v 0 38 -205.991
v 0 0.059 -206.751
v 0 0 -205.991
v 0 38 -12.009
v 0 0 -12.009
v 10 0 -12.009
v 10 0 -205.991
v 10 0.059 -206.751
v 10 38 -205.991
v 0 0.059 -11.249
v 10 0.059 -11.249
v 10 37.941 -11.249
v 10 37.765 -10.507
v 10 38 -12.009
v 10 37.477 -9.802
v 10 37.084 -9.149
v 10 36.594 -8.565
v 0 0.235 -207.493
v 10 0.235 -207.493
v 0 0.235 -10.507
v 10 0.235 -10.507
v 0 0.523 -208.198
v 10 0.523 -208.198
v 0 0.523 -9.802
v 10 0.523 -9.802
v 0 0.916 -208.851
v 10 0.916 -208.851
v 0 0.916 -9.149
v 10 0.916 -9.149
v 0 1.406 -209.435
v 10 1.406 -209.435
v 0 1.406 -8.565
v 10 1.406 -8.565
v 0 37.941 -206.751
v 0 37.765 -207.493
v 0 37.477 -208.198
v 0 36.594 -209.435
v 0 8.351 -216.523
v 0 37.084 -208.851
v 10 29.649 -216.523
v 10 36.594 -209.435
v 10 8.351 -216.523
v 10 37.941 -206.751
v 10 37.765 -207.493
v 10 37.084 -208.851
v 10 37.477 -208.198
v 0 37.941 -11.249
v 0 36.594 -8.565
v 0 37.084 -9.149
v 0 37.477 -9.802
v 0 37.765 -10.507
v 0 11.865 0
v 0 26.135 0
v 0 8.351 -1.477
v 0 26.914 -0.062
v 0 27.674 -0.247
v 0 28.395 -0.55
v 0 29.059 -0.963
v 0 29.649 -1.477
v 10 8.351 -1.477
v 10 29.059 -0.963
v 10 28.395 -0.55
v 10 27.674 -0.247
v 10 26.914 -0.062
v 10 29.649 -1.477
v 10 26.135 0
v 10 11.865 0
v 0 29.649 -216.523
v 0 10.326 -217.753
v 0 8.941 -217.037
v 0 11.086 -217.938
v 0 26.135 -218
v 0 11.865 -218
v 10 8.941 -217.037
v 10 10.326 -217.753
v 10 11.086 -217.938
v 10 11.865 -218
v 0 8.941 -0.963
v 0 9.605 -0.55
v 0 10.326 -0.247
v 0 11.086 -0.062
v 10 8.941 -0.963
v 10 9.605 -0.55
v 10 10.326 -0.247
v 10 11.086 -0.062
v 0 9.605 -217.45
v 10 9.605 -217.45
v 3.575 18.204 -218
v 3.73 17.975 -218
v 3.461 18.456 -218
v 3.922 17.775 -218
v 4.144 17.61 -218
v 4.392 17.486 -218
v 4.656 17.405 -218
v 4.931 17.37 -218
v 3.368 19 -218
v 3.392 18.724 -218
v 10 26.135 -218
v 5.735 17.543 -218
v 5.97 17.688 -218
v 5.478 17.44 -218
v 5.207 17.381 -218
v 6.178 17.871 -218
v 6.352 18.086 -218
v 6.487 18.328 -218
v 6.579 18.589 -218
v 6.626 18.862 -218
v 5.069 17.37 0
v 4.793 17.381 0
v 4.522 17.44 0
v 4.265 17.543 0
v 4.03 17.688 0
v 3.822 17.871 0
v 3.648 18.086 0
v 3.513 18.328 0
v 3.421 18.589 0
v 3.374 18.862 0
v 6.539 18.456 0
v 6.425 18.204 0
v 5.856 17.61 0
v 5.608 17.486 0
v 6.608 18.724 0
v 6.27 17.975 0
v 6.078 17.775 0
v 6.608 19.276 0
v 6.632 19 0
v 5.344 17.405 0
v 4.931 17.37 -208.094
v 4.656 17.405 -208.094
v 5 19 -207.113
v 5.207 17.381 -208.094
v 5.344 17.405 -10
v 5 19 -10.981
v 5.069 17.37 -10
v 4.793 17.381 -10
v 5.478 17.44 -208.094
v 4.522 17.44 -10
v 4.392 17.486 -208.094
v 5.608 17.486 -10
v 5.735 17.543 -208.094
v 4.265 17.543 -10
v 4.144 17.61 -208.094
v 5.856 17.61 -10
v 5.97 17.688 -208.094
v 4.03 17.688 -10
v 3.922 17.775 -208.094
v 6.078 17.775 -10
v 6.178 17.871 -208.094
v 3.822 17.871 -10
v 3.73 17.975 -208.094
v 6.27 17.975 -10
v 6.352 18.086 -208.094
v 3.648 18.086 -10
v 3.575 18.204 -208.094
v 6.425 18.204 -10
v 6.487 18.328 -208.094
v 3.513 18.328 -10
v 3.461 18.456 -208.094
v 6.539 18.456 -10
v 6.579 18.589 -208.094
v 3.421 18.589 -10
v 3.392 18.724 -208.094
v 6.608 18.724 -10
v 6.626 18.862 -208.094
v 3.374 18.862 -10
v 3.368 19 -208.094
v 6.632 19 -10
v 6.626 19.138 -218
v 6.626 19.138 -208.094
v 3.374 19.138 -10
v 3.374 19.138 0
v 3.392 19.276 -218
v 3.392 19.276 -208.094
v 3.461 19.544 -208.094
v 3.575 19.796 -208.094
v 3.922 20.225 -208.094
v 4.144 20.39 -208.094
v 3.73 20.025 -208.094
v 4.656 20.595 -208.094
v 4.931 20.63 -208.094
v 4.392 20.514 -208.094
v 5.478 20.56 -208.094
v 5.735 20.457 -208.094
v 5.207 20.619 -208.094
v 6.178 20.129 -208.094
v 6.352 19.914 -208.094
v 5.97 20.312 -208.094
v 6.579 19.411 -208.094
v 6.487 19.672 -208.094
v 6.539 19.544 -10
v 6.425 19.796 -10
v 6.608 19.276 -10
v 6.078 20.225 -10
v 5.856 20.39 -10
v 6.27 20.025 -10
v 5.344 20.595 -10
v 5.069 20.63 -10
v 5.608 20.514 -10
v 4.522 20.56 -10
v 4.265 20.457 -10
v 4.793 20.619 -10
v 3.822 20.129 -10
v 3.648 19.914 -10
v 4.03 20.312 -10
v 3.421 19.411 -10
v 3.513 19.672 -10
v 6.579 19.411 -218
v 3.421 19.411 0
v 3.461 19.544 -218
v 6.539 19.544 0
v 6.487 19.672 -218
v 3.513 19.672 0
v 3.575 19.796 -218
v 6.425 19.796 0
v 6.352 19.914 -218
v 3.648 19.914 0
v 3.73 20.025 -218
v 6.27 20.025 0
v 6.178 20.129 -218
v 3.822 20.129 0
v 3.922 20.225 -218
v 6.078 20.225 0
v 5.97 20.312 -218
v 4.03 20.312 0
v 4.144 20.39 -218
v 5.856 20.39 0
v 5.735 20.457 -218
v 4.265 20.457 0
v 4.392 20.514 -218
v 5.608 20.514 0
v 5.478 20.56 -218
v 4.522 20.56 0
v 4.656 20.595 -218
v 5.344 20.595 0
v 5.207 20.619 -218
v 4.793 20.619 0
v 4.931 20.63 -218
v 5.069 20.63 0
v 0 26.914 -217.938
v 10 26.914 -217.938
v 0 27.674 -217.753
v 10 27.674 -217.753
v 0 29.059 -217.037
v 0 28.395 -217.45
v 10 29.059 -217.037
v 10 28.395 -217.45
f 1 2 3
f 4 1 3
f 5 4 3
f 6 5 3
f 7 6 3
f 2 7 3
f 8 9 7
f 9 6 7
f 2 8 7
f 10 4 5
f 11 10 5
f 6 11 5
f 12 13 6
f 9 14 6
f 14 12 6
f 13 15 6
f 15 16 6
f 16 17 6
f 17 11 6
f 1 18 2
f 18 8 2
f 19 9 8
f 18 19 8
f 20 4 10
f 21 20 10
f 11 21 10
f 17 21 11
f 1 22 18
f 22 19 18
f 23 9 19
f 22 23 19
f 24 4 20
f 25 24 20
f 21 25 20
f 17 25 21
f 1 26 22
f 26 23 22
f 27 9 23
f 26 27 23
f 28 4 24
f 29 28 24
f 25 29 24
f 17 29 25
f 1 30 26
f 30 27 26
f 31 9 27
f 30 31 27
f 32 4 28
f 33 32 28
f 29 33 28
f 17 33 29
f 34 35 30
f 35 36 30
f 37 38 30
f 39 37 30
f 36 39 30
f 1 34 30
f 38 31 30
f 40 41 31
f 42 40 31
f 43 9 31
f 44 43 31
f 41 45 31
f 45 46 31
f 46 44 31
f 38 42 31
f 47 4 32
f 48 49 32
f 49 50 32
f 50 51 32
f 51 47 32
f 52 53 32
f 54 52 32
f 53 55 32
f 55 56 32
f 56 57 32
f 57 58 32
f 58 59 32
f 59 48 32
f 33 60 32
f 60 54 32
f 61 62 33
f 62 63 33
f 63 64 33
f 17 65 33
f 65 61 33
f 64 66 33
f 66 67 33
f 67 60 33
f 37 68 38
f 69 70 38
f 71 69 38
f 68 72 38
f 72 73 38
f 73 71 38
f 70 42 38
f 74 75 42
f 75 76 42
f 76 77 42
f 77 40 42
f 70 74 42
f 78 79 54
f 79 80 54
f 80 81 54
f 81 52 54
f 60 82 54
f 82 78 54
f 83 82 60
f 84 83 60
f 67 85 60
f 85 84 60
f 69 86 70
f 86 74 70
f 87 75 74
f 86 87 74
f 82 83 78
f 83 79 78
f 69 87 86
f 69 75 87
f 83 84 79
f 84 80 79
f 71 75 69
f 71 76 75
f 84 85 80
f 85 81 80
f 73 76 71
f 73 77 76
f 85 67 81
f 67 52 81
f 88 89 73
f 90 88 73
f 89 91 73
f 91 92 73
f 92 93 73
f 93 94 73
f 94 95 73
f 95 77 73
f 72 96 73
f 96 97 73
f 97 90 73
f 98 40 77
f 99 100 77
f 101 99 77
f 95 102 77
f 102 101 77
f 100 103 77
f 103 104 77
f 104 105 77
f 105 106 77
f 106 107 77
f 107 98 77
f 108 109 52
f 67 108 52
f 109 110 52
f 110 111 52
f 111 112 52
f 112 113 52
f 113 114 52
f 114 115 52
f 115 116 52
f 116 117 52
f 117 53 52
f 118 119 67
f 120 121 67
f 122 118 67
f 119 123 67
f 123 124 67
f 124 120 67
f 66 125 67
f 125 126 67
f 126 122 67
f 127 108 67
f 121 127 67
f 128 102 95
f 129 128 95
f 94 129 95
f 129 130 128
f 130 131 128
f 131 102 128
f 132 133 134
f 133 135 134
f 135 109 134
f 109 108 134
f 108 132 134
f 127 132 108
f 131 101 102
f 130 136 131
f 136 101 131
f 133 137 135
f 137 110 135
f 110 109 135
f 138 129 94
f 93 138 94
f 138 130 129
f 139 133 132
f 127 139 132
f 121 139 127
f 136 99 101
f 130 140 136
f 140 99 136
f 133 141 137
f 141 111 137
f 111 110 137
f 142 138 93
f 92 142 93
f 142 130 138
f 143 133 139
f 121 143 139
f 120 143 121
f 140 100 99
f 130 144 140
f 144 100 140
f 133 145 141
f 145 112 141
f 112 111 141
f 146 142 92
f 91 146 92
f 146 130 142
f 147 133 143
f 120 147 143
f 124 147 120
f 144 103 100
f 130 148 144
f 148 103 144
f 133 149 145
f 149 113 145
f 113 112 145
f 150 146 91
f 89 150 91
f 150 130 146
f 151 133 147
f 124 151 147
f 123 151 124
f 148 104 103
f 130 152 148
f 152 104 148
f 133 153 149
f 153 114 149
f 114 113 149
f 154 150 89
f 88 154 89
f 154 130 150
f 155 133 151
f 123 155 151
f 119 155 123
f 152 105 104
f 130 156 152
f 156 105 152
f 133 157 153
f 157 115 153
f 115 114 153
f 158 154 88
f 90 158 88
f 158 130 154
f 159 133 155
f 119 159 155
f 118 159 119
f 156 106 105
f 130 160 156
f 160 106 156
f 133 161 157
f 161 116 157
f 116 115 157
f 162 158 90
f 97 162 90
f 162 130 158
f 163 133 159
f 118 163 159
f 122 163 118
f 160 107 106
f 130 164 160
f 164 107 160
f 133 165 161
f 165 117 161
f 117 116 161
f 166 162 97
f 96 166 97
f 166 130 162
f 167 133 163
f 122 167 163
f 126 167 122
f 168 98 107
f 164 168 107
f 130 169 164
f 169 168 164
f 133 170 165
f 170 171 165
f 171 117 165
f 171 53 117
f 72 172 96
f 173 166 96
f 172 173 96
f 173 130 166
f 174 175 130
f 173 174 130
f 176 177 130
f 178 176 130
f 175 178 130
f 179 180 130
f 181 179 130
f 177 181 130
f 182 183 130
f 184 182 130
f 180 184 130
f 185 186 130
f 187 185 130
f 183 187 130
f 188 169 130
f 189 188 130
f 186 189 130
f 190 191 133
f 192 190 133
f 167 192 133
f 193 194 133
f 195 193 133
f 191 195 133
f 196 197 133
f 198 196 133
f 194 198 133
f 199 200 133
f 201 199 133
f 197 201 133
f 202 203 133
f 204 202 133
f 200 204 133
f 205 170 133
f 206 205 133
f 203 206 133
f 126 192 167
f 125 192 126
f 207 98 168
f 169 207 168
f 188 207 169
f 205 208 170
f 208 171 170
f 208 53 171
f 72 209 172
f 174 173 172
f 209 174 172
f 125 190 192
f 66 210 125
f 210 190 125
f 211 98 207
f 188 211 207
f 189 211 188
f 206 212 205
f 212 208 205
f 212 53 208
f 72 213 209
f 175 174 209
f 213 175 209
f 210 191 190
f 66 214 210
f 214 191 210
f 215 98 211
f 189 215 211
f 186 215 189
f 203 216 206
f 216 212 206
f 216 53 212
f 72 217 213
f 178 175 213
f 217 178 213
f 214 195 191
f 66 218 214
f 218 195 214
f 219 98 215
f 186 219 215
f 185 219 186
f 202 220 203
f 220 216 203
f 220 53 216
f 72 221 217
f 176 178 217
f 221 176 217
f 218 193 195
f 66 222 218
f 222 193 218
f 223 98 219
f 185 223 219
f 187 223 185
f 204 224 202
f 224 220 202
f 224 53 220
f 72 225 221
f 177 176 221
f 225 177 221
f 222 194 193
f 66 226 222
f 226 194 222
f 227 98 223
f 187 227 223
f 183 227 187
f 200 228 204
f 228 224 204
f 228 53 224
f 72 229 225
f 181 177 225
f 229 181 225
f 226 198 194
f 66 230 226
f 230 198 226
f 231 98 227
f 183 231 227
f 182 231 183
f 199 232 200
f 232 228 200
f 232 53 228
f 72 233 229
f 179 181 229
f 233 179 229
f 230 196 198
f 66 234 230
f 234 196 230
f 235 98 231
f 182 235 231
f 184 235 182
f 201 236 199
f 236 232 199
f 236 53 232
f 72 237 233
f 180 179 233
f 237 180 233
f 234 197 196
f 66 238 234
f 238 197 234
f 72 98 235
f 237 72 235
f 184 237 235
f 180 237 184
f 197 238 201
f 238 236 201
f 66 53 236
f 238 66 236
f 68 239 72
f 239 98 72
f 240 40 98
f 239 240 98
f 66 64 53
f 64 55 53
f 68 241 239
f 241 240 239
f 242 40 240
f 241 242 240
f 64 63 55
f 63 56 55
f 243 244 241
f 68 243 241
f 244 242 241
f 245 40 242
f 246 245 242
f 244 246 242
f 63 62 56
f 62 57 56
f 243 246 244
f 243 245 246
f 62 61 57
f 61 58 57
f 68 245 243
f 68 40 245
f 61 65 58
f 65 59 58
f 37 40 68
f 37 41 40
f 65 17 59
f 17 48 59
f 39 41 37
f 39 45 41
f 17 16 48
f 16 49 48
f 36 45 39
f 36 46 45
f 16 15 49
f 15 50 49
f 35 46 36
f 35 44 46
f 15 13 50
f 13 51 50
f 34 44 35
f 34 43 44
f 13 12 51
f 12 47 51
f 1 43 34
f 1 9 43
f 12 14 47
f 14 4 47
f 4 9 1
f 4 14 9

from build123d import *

# Parameters (mm, degrees)
SKETCH1_W                        = 10
SKETCH1_H                        = 218
BOSS_EXTRUDE1_DEPTH              = 38
CUT_EXTRUDE1_DEPTH               = 11
FILLET1_R                        = 4.92
F_30_0_1285_DIAMETER_HOLE1_D     = 3.2639
F_30_0_1285_DIAMETER_HOLE1_DEPTH = 9.99998
F_30_0_1285_DIAMETER_HOLE1_TIP   = 0.980574487
F_30_0_1285_DIAMETER_HOLE2_D     = 3.2639
F_30_0_1285_DIAMETER_HOLE2_DEPTH = 9.906
F_30_0_1285_DIAMETER_HOLE2_TIP   = 0.980574487


with BuildPart() as part:
    # Sketch1 → Boss-Extrude1 (new body)
    with BuildSketch(Plane(origin=(0, 0, 0), x_dir=(1, 0, 0), z_dir=(0, 1, 0))):
        with Locations((5, 109)):
            Rectangle(SKETCH1_W, SKETCH1_H)
    extrude(amount=BOSS_EXTRUDE1_DEPTH)

    # Sketch3 → Cut-Extrude1 (cut, through all)
    with BuildSketch(Plane(origin=(0, 0, 0), x_dir=(0, 0, -1), z_dir=(1, 0, 0))):
        Polygon((218, 38), (208, 38), (218, 28.202041029), align=None)
        Polygon((218, 9.797958971), (218, 0), (208, 0), align=None)
        Polygon((0, 0), (10, 0), (0, 9.797958971), align=None)
        Polygon((0, 28.202041029), (0, 38), (10, 38), align=None)
    extrude(amount=CUT_EXTRUDE1_DEPTH, mode=Mode.SUBTRACT)

    # Fillet1
    fillet1_edges = [part.edges().sort_by_distance(p)[0] for p in [
        (5, 28.202041029, 0),
        (5, 38, -10),
        (5, 9.797958971, 0),
        (5, 0, -10),
        (5, 9.797958971, -218),
        (5, 0, -208),
        (5, 28.202041029, -218),
        (5, 38, -208),
    ]]
    fillet(fillet1_edges, radius=FILLET1_R)

    # #30 (0.1285) Diameter Hole1
    with Locations(Plane.XY):
        with Locations((5, 19)):
            Hole(F_30_0_1285_DIAMETER_HOLE1_D / 2, depth=F_30_0_1285_DIAMETER_HOLE1_DEPTH)
            with Locations((0, 0, -(F_30_0_1285_DIAMETER_HOLE1_DEPTH + F_30_0_1285_DIAMETER_HOLE1_TIP / 2))):  # 118° drill point
                Cone(0, F_30_0_1285_DIAMETER_HOLE1_D / 2, F_30_0_1285_DIAMETER_HOLE1_TIP, mode=Mode.SUBTRACT)

    # #30 (0.1285) Diameter Hole2
    with Locations(Plane(origin=(0, 0, -218), x_dir=(-1, 0, 0), z_dir=(0, 0, -1))):
        with Locations((-5, 19)):
            Hole(F_30_0_1285_DIAMETER_HOLE2_D / 2, depth=F_30_0_1285_DIAMETER_HOLE2_DEPTH)
            with Locations((0, 0, -(F_30_0_1285_DIAMETER_HOLE2_DEPTH + F_30_0_1285_DIAMETER_HOLE2_TIP / 2))):  # 118° drill point
                Cone(0, F_30_0_1285_DIAMETER_HOLE2_D / 2, F_30_0_1285_DIAMETER_HOLE2_TIP, mode=Mode.SUBTRACT)


solid = part.part
